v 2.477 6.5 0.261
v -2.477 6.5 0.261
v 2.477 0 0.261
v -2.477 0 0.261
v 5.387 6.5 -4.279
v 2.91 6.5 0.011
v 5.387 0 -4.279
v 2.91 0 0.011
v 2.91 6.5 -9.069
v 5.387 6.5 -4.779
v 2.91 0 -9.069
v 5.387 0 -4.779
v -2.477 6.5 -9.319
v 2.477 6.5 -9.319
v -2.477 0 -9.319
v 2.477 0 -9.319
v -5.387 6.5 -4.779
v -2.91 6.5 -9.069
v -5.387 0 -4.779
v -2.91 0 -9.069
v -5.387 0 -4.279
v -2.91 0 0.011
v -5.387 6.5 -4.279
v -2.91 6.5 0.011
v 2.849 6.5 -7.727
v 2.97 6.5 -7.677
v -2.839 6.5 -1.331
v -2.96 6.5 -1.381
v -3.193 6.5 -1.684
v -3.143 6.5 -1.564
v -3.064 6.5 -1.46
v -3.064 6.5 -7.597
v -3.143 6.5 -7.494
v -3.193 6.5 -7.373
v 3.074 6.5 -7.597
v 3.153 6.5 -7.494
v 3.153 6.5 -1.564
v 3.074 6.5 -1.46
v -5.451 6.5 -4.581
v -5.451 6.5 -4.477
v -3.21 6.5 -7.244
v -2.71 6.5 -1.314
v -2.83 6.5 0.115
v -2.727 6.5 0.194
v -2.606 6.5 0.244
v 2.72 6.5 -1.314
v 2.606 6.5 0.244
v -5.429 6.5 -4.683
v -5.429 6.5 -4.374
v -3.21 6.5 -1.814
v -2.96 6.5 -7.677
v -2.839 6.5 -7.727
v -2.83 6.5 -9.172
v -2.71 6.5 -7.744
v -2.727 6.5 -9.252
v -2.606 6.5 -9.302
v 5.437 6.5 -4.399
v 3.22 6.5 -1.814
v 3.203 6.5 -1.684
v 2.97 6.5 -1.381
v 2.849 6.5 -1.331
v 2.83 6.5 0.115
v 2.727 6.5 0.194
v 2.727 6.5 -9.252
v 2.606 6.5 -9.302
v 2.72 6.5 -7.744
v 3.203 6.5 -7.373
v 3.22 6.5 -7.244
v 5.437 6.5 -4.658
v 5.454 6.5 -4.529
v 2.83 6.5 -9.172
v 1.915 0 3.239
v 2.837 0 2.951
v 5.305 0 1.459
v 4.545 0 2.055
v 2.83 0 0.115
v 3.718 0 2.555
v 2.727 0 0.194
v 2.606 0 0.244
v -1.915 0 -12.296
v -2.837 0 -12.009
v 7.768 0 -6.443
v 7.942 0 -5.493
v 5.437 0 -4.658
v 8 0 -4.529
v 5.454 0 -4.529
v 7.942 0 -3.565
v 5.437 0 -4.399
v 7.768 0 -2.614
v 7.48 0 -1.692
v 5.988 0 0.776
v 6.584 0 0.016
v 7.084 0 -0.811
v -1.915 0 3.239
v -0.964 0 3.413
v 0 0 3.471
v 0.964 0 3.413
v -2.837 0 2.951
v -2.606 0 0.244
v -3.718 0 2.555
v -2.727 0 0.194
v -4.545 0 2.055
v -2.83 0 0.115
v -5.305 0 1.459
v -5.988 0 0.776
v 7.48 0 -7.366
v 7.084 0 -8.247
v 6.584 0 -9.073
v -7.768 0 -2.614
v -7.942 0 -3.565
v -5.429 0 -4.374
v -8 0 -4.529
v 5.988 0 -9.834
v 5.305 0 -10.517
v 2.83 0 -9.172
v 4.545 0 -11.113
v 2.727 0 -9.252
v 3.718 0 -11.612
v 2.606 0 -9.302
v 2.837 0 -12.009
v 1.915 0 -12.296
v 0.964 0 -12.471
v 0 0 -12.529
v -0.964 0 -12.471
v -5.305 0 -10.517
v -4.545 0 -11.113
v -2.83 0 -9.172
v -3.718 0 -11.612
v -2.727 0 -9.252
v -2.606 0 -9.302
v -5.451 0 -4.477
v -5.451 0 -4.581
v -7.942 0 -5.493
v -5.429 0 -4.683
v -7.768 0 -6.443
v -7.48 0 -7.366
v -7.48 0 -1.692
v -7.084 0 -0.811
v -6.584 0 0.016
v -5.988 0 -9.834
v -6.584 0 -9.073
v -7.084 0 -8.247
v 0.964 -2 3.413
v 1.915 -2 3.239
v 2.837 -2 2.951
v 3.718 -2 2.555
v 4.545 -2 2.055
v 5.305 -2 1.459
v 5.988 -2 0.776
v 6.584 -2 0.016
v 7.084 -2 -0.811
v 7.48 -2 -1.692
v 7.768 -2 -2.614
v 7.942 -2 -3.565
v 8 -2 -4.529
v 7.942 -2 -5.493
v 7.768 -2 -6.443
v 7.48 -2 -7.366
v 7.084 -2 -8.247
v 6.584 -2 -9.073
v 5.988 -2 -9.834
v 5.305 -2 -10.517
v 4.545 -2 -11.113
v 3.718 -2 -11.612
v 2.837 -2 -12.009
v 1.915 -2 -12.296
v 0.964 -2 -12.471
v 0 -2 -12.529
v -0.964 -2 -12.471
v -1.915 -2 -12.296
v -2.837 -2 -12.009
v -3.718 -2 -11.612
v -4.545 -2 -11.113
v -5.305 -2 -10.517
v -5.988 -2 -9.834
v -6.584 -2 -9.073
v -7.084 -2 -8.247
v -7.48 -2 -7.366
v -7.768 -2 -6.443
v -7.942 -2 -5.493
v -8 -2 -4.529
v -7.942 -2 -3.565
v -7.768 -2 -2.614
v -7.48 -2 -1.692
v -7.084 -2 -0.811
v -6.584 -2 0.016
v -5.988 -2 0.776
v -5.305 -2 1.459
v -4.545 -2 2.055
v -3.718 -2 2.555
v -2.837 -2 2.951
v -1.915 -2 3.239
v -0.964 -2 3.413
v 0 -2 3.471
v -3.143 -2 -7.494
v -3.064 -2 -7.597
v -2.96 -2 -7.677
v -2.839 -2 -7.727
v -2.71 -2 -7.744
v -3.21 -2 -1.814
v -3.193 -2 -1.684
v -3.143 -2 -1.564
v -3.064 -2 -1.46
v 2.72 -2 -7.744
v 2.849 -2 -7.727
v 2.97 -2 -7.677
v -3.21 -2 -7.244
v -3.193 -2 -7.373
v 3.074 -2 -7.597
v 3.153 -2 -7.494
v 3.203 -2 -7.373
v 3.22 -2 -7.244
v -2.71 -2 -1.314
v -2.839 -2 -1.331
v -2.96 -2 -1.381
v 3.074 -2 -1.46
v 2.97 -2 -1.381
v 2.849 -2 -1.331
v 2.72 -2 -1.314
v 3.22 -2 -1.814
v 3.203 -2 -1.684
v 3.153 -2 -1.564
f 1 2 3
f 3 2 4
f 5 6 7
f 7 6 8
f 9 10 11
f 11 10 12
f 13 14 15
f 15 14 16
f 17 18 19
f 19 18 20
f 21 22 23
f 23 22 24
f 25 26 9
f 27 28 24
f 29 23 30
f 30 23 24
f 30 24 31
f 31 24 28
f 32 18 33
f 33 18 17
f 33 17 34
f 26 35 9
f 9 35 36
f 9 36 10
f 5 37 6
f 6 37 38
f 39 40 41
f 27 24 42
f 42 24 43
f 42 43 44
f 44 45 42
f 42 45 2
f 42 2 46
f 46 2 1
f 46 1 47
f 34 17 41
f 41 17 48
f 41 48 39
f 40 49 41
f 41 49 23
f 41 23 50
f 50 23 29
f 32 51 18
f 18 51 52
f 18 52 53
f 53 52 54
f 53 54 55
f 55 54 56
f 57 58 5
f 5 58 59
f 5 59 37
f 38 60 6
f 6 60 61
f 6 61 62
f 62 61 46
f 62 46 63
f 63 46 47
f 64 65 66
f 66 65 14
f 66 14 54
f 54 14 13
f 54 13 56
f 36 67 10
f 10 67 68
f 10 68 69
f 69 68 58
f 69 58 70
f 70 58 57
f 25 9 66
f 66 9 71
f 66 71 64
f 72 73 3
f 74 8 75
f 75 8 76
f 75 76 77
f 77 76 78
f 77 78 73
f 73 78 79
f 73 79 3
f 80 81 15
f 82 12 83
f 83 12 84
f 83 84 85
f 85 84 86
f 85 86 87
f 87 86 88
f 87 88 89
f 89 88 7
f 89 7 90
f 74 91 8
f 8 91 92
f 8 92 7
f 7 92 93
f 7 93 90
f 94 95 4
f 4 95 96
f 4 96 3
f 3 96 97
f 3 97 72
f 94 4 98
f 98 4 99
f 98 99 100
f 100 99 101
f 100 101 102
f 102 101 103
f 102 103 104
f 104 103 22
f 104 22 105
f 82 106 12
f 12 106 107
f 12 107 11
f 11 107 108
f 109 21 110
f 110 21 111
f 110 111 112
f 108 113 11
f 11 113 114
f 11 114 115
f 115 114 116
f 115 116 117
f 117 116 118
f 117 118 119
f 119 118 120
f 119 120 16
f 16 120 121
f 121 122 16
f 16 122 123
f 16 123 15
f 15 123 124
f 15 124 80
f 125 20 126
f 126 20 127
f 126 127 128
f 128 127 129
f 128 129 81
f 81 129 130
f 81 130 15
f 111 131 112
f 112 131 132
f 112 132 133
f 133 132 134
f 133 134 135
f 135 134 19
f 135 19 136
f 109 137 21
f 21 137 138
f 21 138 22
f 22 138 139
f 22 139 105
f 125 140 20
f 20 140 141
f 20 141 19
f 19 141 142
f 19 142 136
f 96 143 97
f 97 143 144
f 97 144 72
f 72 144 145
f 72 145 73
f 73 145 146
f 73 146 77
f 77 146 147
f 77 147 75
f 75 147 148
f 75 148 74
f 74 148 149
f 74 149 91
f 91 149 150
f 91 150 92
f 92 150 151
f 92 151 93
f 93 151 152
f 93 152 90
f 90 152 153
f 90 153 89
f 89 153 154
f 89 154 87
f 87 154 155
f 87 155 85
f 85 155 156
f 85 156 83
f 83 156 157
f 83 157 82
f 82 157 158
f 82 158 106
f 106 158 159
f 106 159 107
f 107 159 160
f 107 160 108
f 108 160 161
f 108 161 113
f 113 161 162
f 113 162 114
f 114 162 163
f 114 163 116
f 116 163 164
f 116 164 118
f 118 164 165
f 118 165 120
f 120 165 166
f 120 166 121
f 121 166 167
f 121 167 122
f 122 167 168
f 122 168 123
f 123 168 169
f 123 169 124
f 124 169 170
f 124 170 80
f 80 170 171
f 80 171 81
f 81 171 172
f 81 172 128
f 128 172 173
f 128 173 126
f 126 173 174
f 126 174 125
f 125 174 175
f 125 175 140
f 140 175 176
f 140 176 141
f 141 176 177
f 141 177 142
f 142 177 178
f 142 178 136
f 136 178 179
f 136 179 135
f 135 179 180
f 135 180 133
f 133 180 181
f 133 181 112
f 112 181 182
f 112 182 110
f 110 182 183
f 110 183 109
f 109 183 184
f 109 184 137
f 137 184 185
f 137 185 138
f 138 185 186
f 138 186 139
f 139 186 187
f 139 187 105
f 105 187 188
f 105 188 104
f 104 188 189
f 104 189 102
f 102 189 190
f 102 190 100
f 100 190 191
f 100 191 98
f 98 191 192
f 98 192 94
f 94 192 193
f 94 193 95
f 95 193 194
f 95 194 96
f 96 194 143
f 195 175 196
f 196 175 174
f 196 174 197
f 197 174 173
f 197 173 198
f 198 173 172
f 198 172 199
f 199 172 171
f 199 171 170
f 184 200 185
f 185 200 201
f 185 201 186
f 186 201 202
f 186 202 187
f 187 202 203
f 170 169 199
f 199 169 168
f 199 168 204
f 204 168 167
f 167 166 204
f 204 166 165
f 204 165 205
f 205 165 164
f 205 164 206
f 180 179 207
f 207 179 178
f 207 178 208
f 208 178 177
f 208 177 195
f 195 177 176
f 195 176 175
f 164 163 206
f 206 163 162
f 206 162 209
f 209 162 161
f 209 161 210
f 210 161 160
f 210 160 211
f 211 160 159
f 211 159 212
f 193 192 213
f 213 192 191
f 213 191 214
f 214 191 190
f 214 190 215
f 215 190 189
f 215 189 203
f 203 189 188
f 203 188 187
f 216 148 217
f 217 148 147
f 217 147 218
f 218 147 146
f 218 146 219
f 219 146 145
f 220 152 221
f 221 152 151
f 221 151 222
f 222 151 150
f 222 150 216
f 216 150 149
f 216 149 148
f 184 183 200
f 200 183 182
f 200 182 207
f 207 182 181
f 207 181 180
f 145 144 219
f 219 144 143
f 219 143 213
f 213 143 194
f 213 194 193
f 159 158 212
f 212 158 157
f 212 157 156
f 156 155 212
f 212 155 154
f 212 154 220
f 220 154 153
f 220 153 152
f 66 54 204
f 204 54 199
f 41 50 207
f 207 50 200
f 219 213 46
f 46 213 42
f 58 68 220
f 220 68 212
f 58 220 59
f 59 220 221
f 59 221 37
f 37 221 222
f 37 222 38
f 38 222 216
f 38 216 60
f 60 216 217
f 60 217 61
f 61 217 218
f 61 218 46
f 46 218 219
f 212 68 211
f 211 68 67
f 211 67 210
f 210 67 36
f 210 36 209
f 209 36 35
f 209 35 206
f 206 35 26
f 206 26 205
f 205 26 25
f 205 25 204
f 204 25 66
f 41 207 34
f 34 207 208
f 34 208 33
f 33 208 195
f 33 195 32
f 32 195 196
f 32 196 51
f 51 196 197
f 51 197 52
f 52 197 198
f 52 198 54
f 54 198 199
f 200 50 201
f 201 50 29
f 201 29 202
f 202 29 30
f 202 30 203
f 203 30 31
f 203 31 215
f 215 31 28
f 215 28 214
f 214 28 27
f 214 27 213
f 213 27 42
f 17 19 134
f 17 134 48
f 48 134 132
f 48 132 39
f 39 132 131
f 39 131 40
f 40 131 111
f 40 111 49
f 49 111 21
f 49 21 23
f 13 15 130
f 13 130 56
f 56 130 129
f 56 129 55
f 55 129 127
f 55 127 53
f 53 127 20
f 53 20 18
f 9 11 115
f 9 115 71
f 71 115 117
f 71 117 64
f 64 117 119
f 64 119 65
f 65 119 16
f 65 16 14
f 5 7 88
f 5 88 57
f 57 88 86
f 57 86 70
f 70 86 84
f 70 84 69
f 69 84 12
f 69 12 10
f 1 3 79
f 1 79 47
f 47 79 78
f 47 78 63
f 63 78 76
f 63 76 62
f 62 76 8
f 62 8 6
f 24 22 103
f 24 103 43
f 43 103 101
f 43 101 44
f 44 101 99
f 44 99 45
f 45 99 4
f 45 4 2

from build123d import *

# Parameters (mm, degrees)
BOSS_EXTRUDE2_DEPTH     = 6.5
SKETCH4_R               = 8
BOSS_EXTRUDE3_DEPTH     = 2
CUT_EXTRUDE1_DEPTH      = 7.37
CUT_EXTRUDE1_DEPTH_BACK = 2.37
SKETCH1_W               = 6.43
SKETCH1_H               = 6.43
FILLET1_R               = 0.5
FILLET2_R               = 0.5


with BuildPart() as part:
    # Sketch3 → Boss-Extrude2 (new body)
    with BuildSketch(Plane(origin=(0, 0, 0), x_dir=(1, 0, 0), z_dir=(0, 1, 0))):
        Polygon((2.765507789, -0.261150073), (5.531015579, 4.528849927), (2.765507789, 9.318849927), (-2.765507789, 9.318849927), (-5.531015579, 4.528849927), (-2.765507789, -0.261150073), align=None)
    extrude(amount=BOSS_EXTRUDE2_DEPTH)

    # Sketch4 → Boss-Extrude3 (add)
    with BuildSketch(Plane(origin=(0, 0, 0), x_dir=(1, 0, 0), z_dir=(0, 1, 0))):
        with Locations(Location((0, 4.528849927, 0), (0, 0, 270))):
            Circle(SKETCH4_R)
    extrude(amount=-BOSS_EXTRUDE3_DEPTH)

    # Sketch1 → Cut-Extrude1 (cut, two sides: drawn at the far end of the back side and taken through both)
    with BuildSketch(Plane(origin=(0, 0, 0), x_dir=(1, 0, 0), z_dir=(0, 1, 0)).offset(-CUT_EXTRUDE1_DEPTH_BACK)):
        with Locations((0.005, 4.528849927)):
            Rectangle(SKETCH1_W, SKETCH1_H)
    extrude(amount=CUT_EXTRUDE1_DEPTH + CUT_EXTRUDE1_DEPTH_BACK, mode=Mode.SUBTRACT)

    # Fillet1
    fillet1_edges = [part.edges().sort_by_distance(p)[0] for p in [
        (3.22, 2.25, -7.743849927),
        (-3.21, 2.25, -7.743849927),
        (-3.21, 2.25, -1.313849927),
        (3.22, 2.25, -1.313849927),
    ]]
    fillet(fillet1_edges, radius=FILLET1_R)

    # Fillet2
    fillet2_edges = [part.edges().sort_by_distance(p)[0] for p in [
        (-2.765507789, 3.25, 0.261150073),
        (-5.531015579, 3.25, -4.528849927),
        (-2.765507789, 3.25, -9.318849927),
        (2.765507789, 3.25, -9.318849927),
        (5.531015579, 3.25, -4.528849927),
        (2.765507789, 3.25, 0.261150073),
    ]]
    fillet(fillet2_edges, radius=FILLET2_R)


solid = part.part
